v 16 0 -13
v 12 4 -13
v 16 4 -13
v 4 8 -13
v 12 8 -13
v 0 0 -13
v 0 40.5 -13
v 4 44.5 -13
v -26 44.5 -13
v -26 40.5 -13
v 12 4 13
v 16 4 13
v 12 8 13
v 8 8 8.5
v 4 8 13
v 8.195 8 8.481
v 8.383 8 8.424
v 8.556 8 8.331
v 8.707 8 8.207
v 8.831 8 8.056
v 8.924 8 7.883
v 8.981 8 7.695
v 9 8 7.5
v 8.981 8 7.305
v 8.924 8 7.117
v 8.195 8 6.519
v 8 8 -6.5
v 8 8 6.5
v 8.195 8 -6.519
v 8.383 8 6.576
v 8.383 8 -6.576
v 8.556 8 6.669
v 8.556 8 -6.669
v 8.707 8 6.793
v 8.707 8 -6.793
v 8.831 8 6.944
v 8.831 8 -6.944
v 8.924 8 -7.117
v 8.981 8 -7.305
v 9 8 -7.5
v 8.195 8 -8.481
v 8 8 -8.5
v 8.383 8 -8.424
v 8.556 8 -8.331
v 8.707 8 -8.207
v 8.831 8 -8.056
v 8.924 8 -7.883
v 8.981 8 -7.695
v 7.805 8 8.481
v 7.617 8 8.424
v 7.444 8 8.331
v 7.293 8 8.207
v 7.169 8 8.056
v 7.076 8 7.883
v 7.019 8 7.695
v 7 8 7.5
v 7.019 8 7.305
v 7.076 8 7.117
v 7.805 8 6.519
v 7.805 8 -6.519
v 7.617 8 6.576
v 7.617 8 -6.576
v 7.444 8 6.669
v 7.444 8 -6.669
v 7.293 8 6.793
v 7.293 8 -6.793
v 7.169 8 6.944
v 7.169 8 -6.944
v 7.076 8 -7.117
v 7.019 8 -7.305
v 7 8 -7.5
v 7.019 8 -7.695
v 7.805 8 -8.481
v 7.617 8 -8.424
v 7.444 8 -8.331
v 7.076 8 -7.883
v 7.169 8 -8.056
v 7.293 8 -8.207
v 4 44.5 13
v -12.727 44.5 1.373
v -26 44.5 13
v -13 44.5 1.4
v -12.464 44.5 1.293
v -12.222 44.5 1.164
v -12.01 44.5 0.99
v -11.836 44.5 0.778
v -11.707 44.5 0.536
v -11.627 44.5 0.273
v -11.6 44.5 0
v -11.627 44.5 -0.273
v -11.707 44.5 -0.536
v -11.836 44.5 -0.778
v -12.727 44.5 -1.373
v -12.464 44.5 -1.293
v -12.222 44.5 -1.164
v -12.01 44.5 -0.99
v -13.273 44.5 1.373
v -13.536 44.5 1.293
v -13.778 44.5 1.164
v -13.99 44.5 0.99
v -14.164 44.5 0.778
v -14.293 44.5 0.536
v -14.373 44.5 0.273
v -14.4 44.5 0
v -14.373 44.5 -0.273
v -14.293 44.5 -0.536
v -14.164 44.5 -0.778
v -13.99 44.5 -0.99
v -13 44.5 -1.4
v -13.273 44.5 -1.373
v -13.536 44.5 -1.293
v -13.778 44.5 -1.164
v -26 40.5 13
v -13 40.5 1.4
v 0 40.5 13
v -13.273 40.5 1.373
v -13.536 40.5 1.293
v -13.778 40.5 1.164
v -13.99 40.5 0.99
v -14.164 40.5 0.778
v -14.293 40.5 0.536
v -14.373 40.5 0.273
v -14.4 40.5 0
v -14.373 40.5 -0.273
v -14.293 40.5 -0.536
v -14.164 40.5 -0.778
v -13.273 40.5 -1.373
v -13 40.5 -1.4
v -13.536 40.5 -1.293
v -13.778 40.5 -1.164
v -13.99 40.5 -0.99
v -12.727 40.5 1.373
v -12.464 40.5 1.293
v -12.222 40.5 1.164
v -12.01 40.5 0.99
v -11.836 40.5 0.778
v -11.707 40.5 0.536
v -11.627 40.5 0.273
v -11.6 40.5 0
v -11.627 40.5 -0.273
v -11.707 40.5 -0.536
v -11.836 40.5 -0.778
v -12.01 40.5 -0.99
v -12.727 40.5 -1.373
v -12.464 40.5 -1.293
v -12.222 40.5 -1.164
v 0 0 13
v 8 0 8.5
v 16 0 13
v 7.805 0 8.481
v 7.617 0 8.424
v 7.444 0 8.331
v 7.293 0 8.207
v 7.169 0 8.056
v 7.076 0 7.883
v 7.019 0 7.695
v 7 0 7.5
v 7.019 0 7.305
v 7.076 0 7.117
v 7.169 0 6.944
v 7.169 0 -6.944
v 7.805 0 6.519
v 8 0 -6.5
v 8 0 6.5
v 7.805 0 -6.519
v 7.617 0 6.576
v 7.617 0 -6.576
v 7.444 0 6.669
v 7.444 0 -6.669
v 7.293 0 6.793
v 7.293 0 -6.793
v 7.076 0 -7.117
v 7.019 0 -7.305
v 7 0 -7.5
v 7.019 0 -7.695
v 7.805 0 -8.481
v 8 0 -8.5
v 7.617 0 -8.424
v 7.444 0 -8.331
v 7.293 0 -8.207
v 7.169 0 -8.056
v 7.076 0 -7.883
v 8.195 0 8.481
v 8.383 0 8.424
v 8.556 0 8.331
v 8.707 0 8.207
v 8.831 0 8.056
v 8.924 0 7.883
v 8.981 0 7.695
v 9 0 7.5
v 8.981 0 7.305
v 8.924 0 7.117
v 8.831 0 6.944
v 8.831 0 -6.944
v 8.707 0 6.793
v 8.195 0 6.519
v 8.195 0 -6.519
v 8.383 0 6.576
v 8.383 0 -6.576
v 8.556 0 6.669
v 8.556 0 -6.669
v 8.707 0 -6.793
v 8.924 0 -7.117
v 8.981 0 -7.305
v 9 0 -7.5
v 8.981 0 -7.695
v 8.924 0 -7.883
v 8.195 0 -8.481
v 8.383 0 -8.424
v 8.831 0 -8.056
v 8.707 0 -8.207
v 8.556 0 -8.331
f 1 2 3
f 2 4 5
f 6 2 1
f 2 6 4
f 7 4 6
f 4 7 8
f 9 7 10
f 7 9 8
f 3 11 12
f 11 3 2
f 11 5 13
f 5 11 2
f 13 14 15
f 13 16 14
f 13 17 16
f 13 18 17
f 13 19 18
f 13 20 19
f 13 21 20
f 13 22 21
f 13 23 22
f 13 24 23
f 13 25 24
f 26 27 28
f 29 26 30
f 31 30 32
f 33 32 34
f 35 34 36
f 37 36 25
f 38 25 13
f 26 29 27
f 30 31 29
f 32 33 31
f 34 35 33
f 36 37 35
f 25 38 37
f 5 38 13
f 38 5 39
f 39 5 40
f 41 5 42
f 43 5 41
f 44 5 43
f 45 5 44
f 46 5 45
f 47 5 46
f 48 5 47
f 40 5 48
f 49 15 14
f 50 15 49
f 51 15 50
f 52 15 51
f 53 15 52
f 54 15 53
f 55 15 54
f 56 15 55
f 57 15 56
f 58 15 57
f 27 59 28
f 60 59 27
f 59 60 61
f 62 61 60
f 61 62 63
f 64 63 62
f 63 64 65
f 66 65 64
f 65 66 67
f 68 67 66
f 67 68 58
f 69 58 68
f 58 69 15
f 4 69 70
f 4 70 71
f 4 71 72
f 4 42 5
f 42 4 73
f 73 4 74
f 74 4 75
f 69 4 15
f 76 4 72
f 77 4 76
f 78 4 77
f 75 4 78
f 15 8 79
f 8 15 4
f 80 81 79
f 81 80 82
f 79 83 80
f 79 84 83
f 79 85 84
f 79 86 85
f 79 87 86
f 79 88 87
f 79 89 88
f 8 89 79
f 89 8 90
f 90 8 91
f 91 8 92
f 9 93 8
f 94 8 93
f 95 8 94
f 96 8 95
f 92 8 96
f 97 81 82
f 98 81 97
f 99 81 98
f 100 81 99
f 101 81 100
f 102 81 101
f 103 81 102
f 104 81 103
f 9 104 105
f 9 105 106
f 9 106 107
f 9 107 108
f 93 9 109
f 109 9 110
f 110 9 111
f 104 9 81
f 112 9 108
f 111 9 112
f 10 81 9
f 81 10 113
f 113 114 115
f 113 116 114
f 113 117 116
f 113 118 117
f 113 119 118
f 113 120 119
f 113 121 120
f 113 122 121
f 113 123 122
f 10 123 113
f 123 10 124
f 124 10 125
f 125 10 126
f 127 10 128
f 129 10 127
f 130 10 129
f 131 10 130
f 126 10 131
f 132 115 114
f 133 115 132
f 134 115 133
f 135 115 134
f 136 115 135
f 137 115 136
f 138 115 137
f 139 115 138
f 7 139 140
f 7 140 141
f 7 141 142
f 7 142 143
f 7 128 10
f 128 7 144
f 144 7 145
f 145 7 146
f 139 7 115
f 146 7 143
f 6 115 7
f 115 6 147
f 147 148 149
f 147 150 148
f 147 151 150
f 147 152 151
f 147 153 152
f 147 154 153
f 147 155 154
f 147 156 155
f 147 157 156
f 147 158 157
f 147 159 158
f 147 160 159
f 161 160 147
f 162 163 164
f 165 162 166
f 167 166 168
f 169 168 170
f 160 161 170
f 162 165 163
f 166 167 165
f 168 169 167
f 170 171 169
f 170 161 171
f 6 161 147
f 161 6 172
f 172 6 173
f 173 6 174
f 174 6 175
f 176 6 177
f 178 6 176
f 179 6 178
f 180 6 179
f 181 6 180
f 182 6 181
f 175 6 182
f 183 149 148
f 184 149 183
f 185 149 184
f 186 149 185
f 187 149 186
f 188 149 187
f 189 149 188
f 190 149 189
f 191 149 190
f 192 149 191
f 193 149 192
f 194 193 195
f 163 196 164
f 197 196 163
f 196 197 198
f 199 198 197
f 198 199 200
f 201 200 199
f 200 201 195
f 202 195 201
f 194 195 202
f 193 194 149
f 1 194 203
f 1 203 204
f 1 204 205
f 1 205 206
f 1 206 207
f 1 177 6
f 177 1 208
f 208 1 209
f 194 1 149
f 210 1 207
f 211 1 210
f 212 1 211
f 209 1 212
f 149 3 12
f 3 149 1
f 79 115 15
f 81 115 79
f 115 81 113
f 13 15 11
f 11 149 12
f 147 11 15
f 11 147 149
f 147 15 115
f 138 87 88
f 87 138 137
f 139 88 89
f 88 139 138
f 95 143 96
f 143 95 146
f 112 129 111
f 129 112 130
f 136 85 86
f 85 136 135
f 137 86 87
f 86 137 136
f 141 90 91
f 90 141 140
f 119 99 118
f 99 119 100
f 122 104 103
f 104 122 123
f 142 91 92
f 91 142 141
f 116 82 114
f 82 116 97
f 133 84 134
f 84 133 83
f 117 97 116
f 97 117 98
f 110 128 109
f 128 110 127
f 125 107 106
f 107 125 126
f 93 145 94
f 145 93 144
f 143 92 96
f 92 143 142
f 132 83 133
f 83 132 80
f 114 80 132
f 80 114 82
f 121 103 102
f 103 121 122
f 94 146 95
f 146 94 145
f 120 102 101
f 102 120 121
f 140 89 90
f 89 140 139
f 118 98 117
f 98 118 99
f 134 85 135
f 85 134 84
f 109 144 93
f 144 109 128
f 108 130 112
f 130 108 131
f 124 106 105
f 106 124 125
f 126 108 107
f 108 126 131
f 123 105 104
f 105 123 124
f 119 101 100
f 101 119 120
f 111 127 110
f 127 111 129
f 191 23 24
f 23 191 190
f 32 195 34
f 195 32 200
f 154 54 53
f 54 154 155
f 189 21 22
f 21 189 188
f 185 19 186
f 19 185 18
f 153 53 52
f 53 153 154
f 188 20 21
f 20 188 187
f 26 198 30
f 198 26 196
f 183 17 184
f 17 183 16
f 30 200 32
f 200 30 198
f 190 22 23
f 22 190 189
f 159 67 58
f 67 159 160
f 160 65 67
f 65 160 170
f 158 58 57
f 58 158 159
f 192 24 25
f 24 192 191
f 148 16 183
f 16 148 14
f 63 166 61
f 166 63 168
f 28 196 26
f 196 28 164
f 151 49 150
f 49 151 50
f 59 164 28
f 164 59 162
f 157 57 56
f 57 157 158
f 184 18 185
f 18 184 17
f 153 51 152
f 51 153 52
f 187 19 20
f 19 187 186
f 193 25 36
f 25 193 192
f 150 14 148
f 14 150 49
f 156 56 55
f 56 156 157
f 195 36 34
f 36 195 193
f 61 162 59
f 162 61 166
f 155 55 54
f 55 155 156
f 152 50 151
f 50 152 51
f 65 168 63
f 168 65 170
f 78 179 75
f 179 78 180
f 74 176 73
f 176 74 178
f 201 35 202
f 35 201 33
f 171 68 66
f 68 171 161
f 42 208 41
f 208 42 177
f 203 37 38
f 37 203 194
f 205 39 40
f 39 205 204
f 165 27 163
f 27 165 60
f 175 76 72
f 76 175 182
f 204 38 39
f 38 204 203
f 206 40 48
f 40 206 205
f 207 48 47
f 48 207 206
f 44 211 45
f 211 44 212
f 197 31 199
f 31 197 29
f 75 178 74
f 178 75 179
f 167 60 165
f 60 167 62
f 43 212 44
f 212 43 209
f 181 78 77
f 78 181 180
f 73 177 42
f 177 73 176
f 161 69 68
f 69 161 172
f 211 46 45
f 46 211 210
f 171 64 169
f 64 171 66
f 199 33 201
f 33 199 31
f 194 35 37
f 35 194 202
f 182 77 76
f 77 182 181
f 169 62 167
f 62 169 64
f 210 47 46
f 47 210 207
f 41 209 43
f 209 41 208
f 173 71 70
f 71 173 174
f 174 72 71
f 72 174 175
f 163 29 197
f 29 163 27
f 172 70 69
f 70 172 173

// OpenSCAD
module LR_bot_slider() {
  $fn = 32;
  sw = 4;
  sh = 44.5;
  difference() {
    linear_extrude(height = 26, center = true, convexity = 10, twist = 0)
    polygon(points = [[0, 0], 
                      [16, 0],
                      [16, sw],
                      [12, sw],
                      [12, sw + 4],
                      [sw, sw + 4],
                      [sw, sh],
                      [-26, sh],
                      [-26, sh - sw],
                      [0, sh - sw],
                      [0, 0]
                     ]);
    
    // center hole
    translate([-26/2, 0, 0])
    rotate([90, 0, 0])
    cylinder(d = 2.8, h = 200, center = true); 

    // body holes
    translate([8, 0, 15/2])
    rotate([90, 0, 0])
    cylinder(d = 2, h = 200, center = true); 

    translate([8, 0, -15/2])
    rotate([90, 0, 0])
    cylinder(d = 2, h = 200, center = true); 


  }
}

LR_bot_slider();
